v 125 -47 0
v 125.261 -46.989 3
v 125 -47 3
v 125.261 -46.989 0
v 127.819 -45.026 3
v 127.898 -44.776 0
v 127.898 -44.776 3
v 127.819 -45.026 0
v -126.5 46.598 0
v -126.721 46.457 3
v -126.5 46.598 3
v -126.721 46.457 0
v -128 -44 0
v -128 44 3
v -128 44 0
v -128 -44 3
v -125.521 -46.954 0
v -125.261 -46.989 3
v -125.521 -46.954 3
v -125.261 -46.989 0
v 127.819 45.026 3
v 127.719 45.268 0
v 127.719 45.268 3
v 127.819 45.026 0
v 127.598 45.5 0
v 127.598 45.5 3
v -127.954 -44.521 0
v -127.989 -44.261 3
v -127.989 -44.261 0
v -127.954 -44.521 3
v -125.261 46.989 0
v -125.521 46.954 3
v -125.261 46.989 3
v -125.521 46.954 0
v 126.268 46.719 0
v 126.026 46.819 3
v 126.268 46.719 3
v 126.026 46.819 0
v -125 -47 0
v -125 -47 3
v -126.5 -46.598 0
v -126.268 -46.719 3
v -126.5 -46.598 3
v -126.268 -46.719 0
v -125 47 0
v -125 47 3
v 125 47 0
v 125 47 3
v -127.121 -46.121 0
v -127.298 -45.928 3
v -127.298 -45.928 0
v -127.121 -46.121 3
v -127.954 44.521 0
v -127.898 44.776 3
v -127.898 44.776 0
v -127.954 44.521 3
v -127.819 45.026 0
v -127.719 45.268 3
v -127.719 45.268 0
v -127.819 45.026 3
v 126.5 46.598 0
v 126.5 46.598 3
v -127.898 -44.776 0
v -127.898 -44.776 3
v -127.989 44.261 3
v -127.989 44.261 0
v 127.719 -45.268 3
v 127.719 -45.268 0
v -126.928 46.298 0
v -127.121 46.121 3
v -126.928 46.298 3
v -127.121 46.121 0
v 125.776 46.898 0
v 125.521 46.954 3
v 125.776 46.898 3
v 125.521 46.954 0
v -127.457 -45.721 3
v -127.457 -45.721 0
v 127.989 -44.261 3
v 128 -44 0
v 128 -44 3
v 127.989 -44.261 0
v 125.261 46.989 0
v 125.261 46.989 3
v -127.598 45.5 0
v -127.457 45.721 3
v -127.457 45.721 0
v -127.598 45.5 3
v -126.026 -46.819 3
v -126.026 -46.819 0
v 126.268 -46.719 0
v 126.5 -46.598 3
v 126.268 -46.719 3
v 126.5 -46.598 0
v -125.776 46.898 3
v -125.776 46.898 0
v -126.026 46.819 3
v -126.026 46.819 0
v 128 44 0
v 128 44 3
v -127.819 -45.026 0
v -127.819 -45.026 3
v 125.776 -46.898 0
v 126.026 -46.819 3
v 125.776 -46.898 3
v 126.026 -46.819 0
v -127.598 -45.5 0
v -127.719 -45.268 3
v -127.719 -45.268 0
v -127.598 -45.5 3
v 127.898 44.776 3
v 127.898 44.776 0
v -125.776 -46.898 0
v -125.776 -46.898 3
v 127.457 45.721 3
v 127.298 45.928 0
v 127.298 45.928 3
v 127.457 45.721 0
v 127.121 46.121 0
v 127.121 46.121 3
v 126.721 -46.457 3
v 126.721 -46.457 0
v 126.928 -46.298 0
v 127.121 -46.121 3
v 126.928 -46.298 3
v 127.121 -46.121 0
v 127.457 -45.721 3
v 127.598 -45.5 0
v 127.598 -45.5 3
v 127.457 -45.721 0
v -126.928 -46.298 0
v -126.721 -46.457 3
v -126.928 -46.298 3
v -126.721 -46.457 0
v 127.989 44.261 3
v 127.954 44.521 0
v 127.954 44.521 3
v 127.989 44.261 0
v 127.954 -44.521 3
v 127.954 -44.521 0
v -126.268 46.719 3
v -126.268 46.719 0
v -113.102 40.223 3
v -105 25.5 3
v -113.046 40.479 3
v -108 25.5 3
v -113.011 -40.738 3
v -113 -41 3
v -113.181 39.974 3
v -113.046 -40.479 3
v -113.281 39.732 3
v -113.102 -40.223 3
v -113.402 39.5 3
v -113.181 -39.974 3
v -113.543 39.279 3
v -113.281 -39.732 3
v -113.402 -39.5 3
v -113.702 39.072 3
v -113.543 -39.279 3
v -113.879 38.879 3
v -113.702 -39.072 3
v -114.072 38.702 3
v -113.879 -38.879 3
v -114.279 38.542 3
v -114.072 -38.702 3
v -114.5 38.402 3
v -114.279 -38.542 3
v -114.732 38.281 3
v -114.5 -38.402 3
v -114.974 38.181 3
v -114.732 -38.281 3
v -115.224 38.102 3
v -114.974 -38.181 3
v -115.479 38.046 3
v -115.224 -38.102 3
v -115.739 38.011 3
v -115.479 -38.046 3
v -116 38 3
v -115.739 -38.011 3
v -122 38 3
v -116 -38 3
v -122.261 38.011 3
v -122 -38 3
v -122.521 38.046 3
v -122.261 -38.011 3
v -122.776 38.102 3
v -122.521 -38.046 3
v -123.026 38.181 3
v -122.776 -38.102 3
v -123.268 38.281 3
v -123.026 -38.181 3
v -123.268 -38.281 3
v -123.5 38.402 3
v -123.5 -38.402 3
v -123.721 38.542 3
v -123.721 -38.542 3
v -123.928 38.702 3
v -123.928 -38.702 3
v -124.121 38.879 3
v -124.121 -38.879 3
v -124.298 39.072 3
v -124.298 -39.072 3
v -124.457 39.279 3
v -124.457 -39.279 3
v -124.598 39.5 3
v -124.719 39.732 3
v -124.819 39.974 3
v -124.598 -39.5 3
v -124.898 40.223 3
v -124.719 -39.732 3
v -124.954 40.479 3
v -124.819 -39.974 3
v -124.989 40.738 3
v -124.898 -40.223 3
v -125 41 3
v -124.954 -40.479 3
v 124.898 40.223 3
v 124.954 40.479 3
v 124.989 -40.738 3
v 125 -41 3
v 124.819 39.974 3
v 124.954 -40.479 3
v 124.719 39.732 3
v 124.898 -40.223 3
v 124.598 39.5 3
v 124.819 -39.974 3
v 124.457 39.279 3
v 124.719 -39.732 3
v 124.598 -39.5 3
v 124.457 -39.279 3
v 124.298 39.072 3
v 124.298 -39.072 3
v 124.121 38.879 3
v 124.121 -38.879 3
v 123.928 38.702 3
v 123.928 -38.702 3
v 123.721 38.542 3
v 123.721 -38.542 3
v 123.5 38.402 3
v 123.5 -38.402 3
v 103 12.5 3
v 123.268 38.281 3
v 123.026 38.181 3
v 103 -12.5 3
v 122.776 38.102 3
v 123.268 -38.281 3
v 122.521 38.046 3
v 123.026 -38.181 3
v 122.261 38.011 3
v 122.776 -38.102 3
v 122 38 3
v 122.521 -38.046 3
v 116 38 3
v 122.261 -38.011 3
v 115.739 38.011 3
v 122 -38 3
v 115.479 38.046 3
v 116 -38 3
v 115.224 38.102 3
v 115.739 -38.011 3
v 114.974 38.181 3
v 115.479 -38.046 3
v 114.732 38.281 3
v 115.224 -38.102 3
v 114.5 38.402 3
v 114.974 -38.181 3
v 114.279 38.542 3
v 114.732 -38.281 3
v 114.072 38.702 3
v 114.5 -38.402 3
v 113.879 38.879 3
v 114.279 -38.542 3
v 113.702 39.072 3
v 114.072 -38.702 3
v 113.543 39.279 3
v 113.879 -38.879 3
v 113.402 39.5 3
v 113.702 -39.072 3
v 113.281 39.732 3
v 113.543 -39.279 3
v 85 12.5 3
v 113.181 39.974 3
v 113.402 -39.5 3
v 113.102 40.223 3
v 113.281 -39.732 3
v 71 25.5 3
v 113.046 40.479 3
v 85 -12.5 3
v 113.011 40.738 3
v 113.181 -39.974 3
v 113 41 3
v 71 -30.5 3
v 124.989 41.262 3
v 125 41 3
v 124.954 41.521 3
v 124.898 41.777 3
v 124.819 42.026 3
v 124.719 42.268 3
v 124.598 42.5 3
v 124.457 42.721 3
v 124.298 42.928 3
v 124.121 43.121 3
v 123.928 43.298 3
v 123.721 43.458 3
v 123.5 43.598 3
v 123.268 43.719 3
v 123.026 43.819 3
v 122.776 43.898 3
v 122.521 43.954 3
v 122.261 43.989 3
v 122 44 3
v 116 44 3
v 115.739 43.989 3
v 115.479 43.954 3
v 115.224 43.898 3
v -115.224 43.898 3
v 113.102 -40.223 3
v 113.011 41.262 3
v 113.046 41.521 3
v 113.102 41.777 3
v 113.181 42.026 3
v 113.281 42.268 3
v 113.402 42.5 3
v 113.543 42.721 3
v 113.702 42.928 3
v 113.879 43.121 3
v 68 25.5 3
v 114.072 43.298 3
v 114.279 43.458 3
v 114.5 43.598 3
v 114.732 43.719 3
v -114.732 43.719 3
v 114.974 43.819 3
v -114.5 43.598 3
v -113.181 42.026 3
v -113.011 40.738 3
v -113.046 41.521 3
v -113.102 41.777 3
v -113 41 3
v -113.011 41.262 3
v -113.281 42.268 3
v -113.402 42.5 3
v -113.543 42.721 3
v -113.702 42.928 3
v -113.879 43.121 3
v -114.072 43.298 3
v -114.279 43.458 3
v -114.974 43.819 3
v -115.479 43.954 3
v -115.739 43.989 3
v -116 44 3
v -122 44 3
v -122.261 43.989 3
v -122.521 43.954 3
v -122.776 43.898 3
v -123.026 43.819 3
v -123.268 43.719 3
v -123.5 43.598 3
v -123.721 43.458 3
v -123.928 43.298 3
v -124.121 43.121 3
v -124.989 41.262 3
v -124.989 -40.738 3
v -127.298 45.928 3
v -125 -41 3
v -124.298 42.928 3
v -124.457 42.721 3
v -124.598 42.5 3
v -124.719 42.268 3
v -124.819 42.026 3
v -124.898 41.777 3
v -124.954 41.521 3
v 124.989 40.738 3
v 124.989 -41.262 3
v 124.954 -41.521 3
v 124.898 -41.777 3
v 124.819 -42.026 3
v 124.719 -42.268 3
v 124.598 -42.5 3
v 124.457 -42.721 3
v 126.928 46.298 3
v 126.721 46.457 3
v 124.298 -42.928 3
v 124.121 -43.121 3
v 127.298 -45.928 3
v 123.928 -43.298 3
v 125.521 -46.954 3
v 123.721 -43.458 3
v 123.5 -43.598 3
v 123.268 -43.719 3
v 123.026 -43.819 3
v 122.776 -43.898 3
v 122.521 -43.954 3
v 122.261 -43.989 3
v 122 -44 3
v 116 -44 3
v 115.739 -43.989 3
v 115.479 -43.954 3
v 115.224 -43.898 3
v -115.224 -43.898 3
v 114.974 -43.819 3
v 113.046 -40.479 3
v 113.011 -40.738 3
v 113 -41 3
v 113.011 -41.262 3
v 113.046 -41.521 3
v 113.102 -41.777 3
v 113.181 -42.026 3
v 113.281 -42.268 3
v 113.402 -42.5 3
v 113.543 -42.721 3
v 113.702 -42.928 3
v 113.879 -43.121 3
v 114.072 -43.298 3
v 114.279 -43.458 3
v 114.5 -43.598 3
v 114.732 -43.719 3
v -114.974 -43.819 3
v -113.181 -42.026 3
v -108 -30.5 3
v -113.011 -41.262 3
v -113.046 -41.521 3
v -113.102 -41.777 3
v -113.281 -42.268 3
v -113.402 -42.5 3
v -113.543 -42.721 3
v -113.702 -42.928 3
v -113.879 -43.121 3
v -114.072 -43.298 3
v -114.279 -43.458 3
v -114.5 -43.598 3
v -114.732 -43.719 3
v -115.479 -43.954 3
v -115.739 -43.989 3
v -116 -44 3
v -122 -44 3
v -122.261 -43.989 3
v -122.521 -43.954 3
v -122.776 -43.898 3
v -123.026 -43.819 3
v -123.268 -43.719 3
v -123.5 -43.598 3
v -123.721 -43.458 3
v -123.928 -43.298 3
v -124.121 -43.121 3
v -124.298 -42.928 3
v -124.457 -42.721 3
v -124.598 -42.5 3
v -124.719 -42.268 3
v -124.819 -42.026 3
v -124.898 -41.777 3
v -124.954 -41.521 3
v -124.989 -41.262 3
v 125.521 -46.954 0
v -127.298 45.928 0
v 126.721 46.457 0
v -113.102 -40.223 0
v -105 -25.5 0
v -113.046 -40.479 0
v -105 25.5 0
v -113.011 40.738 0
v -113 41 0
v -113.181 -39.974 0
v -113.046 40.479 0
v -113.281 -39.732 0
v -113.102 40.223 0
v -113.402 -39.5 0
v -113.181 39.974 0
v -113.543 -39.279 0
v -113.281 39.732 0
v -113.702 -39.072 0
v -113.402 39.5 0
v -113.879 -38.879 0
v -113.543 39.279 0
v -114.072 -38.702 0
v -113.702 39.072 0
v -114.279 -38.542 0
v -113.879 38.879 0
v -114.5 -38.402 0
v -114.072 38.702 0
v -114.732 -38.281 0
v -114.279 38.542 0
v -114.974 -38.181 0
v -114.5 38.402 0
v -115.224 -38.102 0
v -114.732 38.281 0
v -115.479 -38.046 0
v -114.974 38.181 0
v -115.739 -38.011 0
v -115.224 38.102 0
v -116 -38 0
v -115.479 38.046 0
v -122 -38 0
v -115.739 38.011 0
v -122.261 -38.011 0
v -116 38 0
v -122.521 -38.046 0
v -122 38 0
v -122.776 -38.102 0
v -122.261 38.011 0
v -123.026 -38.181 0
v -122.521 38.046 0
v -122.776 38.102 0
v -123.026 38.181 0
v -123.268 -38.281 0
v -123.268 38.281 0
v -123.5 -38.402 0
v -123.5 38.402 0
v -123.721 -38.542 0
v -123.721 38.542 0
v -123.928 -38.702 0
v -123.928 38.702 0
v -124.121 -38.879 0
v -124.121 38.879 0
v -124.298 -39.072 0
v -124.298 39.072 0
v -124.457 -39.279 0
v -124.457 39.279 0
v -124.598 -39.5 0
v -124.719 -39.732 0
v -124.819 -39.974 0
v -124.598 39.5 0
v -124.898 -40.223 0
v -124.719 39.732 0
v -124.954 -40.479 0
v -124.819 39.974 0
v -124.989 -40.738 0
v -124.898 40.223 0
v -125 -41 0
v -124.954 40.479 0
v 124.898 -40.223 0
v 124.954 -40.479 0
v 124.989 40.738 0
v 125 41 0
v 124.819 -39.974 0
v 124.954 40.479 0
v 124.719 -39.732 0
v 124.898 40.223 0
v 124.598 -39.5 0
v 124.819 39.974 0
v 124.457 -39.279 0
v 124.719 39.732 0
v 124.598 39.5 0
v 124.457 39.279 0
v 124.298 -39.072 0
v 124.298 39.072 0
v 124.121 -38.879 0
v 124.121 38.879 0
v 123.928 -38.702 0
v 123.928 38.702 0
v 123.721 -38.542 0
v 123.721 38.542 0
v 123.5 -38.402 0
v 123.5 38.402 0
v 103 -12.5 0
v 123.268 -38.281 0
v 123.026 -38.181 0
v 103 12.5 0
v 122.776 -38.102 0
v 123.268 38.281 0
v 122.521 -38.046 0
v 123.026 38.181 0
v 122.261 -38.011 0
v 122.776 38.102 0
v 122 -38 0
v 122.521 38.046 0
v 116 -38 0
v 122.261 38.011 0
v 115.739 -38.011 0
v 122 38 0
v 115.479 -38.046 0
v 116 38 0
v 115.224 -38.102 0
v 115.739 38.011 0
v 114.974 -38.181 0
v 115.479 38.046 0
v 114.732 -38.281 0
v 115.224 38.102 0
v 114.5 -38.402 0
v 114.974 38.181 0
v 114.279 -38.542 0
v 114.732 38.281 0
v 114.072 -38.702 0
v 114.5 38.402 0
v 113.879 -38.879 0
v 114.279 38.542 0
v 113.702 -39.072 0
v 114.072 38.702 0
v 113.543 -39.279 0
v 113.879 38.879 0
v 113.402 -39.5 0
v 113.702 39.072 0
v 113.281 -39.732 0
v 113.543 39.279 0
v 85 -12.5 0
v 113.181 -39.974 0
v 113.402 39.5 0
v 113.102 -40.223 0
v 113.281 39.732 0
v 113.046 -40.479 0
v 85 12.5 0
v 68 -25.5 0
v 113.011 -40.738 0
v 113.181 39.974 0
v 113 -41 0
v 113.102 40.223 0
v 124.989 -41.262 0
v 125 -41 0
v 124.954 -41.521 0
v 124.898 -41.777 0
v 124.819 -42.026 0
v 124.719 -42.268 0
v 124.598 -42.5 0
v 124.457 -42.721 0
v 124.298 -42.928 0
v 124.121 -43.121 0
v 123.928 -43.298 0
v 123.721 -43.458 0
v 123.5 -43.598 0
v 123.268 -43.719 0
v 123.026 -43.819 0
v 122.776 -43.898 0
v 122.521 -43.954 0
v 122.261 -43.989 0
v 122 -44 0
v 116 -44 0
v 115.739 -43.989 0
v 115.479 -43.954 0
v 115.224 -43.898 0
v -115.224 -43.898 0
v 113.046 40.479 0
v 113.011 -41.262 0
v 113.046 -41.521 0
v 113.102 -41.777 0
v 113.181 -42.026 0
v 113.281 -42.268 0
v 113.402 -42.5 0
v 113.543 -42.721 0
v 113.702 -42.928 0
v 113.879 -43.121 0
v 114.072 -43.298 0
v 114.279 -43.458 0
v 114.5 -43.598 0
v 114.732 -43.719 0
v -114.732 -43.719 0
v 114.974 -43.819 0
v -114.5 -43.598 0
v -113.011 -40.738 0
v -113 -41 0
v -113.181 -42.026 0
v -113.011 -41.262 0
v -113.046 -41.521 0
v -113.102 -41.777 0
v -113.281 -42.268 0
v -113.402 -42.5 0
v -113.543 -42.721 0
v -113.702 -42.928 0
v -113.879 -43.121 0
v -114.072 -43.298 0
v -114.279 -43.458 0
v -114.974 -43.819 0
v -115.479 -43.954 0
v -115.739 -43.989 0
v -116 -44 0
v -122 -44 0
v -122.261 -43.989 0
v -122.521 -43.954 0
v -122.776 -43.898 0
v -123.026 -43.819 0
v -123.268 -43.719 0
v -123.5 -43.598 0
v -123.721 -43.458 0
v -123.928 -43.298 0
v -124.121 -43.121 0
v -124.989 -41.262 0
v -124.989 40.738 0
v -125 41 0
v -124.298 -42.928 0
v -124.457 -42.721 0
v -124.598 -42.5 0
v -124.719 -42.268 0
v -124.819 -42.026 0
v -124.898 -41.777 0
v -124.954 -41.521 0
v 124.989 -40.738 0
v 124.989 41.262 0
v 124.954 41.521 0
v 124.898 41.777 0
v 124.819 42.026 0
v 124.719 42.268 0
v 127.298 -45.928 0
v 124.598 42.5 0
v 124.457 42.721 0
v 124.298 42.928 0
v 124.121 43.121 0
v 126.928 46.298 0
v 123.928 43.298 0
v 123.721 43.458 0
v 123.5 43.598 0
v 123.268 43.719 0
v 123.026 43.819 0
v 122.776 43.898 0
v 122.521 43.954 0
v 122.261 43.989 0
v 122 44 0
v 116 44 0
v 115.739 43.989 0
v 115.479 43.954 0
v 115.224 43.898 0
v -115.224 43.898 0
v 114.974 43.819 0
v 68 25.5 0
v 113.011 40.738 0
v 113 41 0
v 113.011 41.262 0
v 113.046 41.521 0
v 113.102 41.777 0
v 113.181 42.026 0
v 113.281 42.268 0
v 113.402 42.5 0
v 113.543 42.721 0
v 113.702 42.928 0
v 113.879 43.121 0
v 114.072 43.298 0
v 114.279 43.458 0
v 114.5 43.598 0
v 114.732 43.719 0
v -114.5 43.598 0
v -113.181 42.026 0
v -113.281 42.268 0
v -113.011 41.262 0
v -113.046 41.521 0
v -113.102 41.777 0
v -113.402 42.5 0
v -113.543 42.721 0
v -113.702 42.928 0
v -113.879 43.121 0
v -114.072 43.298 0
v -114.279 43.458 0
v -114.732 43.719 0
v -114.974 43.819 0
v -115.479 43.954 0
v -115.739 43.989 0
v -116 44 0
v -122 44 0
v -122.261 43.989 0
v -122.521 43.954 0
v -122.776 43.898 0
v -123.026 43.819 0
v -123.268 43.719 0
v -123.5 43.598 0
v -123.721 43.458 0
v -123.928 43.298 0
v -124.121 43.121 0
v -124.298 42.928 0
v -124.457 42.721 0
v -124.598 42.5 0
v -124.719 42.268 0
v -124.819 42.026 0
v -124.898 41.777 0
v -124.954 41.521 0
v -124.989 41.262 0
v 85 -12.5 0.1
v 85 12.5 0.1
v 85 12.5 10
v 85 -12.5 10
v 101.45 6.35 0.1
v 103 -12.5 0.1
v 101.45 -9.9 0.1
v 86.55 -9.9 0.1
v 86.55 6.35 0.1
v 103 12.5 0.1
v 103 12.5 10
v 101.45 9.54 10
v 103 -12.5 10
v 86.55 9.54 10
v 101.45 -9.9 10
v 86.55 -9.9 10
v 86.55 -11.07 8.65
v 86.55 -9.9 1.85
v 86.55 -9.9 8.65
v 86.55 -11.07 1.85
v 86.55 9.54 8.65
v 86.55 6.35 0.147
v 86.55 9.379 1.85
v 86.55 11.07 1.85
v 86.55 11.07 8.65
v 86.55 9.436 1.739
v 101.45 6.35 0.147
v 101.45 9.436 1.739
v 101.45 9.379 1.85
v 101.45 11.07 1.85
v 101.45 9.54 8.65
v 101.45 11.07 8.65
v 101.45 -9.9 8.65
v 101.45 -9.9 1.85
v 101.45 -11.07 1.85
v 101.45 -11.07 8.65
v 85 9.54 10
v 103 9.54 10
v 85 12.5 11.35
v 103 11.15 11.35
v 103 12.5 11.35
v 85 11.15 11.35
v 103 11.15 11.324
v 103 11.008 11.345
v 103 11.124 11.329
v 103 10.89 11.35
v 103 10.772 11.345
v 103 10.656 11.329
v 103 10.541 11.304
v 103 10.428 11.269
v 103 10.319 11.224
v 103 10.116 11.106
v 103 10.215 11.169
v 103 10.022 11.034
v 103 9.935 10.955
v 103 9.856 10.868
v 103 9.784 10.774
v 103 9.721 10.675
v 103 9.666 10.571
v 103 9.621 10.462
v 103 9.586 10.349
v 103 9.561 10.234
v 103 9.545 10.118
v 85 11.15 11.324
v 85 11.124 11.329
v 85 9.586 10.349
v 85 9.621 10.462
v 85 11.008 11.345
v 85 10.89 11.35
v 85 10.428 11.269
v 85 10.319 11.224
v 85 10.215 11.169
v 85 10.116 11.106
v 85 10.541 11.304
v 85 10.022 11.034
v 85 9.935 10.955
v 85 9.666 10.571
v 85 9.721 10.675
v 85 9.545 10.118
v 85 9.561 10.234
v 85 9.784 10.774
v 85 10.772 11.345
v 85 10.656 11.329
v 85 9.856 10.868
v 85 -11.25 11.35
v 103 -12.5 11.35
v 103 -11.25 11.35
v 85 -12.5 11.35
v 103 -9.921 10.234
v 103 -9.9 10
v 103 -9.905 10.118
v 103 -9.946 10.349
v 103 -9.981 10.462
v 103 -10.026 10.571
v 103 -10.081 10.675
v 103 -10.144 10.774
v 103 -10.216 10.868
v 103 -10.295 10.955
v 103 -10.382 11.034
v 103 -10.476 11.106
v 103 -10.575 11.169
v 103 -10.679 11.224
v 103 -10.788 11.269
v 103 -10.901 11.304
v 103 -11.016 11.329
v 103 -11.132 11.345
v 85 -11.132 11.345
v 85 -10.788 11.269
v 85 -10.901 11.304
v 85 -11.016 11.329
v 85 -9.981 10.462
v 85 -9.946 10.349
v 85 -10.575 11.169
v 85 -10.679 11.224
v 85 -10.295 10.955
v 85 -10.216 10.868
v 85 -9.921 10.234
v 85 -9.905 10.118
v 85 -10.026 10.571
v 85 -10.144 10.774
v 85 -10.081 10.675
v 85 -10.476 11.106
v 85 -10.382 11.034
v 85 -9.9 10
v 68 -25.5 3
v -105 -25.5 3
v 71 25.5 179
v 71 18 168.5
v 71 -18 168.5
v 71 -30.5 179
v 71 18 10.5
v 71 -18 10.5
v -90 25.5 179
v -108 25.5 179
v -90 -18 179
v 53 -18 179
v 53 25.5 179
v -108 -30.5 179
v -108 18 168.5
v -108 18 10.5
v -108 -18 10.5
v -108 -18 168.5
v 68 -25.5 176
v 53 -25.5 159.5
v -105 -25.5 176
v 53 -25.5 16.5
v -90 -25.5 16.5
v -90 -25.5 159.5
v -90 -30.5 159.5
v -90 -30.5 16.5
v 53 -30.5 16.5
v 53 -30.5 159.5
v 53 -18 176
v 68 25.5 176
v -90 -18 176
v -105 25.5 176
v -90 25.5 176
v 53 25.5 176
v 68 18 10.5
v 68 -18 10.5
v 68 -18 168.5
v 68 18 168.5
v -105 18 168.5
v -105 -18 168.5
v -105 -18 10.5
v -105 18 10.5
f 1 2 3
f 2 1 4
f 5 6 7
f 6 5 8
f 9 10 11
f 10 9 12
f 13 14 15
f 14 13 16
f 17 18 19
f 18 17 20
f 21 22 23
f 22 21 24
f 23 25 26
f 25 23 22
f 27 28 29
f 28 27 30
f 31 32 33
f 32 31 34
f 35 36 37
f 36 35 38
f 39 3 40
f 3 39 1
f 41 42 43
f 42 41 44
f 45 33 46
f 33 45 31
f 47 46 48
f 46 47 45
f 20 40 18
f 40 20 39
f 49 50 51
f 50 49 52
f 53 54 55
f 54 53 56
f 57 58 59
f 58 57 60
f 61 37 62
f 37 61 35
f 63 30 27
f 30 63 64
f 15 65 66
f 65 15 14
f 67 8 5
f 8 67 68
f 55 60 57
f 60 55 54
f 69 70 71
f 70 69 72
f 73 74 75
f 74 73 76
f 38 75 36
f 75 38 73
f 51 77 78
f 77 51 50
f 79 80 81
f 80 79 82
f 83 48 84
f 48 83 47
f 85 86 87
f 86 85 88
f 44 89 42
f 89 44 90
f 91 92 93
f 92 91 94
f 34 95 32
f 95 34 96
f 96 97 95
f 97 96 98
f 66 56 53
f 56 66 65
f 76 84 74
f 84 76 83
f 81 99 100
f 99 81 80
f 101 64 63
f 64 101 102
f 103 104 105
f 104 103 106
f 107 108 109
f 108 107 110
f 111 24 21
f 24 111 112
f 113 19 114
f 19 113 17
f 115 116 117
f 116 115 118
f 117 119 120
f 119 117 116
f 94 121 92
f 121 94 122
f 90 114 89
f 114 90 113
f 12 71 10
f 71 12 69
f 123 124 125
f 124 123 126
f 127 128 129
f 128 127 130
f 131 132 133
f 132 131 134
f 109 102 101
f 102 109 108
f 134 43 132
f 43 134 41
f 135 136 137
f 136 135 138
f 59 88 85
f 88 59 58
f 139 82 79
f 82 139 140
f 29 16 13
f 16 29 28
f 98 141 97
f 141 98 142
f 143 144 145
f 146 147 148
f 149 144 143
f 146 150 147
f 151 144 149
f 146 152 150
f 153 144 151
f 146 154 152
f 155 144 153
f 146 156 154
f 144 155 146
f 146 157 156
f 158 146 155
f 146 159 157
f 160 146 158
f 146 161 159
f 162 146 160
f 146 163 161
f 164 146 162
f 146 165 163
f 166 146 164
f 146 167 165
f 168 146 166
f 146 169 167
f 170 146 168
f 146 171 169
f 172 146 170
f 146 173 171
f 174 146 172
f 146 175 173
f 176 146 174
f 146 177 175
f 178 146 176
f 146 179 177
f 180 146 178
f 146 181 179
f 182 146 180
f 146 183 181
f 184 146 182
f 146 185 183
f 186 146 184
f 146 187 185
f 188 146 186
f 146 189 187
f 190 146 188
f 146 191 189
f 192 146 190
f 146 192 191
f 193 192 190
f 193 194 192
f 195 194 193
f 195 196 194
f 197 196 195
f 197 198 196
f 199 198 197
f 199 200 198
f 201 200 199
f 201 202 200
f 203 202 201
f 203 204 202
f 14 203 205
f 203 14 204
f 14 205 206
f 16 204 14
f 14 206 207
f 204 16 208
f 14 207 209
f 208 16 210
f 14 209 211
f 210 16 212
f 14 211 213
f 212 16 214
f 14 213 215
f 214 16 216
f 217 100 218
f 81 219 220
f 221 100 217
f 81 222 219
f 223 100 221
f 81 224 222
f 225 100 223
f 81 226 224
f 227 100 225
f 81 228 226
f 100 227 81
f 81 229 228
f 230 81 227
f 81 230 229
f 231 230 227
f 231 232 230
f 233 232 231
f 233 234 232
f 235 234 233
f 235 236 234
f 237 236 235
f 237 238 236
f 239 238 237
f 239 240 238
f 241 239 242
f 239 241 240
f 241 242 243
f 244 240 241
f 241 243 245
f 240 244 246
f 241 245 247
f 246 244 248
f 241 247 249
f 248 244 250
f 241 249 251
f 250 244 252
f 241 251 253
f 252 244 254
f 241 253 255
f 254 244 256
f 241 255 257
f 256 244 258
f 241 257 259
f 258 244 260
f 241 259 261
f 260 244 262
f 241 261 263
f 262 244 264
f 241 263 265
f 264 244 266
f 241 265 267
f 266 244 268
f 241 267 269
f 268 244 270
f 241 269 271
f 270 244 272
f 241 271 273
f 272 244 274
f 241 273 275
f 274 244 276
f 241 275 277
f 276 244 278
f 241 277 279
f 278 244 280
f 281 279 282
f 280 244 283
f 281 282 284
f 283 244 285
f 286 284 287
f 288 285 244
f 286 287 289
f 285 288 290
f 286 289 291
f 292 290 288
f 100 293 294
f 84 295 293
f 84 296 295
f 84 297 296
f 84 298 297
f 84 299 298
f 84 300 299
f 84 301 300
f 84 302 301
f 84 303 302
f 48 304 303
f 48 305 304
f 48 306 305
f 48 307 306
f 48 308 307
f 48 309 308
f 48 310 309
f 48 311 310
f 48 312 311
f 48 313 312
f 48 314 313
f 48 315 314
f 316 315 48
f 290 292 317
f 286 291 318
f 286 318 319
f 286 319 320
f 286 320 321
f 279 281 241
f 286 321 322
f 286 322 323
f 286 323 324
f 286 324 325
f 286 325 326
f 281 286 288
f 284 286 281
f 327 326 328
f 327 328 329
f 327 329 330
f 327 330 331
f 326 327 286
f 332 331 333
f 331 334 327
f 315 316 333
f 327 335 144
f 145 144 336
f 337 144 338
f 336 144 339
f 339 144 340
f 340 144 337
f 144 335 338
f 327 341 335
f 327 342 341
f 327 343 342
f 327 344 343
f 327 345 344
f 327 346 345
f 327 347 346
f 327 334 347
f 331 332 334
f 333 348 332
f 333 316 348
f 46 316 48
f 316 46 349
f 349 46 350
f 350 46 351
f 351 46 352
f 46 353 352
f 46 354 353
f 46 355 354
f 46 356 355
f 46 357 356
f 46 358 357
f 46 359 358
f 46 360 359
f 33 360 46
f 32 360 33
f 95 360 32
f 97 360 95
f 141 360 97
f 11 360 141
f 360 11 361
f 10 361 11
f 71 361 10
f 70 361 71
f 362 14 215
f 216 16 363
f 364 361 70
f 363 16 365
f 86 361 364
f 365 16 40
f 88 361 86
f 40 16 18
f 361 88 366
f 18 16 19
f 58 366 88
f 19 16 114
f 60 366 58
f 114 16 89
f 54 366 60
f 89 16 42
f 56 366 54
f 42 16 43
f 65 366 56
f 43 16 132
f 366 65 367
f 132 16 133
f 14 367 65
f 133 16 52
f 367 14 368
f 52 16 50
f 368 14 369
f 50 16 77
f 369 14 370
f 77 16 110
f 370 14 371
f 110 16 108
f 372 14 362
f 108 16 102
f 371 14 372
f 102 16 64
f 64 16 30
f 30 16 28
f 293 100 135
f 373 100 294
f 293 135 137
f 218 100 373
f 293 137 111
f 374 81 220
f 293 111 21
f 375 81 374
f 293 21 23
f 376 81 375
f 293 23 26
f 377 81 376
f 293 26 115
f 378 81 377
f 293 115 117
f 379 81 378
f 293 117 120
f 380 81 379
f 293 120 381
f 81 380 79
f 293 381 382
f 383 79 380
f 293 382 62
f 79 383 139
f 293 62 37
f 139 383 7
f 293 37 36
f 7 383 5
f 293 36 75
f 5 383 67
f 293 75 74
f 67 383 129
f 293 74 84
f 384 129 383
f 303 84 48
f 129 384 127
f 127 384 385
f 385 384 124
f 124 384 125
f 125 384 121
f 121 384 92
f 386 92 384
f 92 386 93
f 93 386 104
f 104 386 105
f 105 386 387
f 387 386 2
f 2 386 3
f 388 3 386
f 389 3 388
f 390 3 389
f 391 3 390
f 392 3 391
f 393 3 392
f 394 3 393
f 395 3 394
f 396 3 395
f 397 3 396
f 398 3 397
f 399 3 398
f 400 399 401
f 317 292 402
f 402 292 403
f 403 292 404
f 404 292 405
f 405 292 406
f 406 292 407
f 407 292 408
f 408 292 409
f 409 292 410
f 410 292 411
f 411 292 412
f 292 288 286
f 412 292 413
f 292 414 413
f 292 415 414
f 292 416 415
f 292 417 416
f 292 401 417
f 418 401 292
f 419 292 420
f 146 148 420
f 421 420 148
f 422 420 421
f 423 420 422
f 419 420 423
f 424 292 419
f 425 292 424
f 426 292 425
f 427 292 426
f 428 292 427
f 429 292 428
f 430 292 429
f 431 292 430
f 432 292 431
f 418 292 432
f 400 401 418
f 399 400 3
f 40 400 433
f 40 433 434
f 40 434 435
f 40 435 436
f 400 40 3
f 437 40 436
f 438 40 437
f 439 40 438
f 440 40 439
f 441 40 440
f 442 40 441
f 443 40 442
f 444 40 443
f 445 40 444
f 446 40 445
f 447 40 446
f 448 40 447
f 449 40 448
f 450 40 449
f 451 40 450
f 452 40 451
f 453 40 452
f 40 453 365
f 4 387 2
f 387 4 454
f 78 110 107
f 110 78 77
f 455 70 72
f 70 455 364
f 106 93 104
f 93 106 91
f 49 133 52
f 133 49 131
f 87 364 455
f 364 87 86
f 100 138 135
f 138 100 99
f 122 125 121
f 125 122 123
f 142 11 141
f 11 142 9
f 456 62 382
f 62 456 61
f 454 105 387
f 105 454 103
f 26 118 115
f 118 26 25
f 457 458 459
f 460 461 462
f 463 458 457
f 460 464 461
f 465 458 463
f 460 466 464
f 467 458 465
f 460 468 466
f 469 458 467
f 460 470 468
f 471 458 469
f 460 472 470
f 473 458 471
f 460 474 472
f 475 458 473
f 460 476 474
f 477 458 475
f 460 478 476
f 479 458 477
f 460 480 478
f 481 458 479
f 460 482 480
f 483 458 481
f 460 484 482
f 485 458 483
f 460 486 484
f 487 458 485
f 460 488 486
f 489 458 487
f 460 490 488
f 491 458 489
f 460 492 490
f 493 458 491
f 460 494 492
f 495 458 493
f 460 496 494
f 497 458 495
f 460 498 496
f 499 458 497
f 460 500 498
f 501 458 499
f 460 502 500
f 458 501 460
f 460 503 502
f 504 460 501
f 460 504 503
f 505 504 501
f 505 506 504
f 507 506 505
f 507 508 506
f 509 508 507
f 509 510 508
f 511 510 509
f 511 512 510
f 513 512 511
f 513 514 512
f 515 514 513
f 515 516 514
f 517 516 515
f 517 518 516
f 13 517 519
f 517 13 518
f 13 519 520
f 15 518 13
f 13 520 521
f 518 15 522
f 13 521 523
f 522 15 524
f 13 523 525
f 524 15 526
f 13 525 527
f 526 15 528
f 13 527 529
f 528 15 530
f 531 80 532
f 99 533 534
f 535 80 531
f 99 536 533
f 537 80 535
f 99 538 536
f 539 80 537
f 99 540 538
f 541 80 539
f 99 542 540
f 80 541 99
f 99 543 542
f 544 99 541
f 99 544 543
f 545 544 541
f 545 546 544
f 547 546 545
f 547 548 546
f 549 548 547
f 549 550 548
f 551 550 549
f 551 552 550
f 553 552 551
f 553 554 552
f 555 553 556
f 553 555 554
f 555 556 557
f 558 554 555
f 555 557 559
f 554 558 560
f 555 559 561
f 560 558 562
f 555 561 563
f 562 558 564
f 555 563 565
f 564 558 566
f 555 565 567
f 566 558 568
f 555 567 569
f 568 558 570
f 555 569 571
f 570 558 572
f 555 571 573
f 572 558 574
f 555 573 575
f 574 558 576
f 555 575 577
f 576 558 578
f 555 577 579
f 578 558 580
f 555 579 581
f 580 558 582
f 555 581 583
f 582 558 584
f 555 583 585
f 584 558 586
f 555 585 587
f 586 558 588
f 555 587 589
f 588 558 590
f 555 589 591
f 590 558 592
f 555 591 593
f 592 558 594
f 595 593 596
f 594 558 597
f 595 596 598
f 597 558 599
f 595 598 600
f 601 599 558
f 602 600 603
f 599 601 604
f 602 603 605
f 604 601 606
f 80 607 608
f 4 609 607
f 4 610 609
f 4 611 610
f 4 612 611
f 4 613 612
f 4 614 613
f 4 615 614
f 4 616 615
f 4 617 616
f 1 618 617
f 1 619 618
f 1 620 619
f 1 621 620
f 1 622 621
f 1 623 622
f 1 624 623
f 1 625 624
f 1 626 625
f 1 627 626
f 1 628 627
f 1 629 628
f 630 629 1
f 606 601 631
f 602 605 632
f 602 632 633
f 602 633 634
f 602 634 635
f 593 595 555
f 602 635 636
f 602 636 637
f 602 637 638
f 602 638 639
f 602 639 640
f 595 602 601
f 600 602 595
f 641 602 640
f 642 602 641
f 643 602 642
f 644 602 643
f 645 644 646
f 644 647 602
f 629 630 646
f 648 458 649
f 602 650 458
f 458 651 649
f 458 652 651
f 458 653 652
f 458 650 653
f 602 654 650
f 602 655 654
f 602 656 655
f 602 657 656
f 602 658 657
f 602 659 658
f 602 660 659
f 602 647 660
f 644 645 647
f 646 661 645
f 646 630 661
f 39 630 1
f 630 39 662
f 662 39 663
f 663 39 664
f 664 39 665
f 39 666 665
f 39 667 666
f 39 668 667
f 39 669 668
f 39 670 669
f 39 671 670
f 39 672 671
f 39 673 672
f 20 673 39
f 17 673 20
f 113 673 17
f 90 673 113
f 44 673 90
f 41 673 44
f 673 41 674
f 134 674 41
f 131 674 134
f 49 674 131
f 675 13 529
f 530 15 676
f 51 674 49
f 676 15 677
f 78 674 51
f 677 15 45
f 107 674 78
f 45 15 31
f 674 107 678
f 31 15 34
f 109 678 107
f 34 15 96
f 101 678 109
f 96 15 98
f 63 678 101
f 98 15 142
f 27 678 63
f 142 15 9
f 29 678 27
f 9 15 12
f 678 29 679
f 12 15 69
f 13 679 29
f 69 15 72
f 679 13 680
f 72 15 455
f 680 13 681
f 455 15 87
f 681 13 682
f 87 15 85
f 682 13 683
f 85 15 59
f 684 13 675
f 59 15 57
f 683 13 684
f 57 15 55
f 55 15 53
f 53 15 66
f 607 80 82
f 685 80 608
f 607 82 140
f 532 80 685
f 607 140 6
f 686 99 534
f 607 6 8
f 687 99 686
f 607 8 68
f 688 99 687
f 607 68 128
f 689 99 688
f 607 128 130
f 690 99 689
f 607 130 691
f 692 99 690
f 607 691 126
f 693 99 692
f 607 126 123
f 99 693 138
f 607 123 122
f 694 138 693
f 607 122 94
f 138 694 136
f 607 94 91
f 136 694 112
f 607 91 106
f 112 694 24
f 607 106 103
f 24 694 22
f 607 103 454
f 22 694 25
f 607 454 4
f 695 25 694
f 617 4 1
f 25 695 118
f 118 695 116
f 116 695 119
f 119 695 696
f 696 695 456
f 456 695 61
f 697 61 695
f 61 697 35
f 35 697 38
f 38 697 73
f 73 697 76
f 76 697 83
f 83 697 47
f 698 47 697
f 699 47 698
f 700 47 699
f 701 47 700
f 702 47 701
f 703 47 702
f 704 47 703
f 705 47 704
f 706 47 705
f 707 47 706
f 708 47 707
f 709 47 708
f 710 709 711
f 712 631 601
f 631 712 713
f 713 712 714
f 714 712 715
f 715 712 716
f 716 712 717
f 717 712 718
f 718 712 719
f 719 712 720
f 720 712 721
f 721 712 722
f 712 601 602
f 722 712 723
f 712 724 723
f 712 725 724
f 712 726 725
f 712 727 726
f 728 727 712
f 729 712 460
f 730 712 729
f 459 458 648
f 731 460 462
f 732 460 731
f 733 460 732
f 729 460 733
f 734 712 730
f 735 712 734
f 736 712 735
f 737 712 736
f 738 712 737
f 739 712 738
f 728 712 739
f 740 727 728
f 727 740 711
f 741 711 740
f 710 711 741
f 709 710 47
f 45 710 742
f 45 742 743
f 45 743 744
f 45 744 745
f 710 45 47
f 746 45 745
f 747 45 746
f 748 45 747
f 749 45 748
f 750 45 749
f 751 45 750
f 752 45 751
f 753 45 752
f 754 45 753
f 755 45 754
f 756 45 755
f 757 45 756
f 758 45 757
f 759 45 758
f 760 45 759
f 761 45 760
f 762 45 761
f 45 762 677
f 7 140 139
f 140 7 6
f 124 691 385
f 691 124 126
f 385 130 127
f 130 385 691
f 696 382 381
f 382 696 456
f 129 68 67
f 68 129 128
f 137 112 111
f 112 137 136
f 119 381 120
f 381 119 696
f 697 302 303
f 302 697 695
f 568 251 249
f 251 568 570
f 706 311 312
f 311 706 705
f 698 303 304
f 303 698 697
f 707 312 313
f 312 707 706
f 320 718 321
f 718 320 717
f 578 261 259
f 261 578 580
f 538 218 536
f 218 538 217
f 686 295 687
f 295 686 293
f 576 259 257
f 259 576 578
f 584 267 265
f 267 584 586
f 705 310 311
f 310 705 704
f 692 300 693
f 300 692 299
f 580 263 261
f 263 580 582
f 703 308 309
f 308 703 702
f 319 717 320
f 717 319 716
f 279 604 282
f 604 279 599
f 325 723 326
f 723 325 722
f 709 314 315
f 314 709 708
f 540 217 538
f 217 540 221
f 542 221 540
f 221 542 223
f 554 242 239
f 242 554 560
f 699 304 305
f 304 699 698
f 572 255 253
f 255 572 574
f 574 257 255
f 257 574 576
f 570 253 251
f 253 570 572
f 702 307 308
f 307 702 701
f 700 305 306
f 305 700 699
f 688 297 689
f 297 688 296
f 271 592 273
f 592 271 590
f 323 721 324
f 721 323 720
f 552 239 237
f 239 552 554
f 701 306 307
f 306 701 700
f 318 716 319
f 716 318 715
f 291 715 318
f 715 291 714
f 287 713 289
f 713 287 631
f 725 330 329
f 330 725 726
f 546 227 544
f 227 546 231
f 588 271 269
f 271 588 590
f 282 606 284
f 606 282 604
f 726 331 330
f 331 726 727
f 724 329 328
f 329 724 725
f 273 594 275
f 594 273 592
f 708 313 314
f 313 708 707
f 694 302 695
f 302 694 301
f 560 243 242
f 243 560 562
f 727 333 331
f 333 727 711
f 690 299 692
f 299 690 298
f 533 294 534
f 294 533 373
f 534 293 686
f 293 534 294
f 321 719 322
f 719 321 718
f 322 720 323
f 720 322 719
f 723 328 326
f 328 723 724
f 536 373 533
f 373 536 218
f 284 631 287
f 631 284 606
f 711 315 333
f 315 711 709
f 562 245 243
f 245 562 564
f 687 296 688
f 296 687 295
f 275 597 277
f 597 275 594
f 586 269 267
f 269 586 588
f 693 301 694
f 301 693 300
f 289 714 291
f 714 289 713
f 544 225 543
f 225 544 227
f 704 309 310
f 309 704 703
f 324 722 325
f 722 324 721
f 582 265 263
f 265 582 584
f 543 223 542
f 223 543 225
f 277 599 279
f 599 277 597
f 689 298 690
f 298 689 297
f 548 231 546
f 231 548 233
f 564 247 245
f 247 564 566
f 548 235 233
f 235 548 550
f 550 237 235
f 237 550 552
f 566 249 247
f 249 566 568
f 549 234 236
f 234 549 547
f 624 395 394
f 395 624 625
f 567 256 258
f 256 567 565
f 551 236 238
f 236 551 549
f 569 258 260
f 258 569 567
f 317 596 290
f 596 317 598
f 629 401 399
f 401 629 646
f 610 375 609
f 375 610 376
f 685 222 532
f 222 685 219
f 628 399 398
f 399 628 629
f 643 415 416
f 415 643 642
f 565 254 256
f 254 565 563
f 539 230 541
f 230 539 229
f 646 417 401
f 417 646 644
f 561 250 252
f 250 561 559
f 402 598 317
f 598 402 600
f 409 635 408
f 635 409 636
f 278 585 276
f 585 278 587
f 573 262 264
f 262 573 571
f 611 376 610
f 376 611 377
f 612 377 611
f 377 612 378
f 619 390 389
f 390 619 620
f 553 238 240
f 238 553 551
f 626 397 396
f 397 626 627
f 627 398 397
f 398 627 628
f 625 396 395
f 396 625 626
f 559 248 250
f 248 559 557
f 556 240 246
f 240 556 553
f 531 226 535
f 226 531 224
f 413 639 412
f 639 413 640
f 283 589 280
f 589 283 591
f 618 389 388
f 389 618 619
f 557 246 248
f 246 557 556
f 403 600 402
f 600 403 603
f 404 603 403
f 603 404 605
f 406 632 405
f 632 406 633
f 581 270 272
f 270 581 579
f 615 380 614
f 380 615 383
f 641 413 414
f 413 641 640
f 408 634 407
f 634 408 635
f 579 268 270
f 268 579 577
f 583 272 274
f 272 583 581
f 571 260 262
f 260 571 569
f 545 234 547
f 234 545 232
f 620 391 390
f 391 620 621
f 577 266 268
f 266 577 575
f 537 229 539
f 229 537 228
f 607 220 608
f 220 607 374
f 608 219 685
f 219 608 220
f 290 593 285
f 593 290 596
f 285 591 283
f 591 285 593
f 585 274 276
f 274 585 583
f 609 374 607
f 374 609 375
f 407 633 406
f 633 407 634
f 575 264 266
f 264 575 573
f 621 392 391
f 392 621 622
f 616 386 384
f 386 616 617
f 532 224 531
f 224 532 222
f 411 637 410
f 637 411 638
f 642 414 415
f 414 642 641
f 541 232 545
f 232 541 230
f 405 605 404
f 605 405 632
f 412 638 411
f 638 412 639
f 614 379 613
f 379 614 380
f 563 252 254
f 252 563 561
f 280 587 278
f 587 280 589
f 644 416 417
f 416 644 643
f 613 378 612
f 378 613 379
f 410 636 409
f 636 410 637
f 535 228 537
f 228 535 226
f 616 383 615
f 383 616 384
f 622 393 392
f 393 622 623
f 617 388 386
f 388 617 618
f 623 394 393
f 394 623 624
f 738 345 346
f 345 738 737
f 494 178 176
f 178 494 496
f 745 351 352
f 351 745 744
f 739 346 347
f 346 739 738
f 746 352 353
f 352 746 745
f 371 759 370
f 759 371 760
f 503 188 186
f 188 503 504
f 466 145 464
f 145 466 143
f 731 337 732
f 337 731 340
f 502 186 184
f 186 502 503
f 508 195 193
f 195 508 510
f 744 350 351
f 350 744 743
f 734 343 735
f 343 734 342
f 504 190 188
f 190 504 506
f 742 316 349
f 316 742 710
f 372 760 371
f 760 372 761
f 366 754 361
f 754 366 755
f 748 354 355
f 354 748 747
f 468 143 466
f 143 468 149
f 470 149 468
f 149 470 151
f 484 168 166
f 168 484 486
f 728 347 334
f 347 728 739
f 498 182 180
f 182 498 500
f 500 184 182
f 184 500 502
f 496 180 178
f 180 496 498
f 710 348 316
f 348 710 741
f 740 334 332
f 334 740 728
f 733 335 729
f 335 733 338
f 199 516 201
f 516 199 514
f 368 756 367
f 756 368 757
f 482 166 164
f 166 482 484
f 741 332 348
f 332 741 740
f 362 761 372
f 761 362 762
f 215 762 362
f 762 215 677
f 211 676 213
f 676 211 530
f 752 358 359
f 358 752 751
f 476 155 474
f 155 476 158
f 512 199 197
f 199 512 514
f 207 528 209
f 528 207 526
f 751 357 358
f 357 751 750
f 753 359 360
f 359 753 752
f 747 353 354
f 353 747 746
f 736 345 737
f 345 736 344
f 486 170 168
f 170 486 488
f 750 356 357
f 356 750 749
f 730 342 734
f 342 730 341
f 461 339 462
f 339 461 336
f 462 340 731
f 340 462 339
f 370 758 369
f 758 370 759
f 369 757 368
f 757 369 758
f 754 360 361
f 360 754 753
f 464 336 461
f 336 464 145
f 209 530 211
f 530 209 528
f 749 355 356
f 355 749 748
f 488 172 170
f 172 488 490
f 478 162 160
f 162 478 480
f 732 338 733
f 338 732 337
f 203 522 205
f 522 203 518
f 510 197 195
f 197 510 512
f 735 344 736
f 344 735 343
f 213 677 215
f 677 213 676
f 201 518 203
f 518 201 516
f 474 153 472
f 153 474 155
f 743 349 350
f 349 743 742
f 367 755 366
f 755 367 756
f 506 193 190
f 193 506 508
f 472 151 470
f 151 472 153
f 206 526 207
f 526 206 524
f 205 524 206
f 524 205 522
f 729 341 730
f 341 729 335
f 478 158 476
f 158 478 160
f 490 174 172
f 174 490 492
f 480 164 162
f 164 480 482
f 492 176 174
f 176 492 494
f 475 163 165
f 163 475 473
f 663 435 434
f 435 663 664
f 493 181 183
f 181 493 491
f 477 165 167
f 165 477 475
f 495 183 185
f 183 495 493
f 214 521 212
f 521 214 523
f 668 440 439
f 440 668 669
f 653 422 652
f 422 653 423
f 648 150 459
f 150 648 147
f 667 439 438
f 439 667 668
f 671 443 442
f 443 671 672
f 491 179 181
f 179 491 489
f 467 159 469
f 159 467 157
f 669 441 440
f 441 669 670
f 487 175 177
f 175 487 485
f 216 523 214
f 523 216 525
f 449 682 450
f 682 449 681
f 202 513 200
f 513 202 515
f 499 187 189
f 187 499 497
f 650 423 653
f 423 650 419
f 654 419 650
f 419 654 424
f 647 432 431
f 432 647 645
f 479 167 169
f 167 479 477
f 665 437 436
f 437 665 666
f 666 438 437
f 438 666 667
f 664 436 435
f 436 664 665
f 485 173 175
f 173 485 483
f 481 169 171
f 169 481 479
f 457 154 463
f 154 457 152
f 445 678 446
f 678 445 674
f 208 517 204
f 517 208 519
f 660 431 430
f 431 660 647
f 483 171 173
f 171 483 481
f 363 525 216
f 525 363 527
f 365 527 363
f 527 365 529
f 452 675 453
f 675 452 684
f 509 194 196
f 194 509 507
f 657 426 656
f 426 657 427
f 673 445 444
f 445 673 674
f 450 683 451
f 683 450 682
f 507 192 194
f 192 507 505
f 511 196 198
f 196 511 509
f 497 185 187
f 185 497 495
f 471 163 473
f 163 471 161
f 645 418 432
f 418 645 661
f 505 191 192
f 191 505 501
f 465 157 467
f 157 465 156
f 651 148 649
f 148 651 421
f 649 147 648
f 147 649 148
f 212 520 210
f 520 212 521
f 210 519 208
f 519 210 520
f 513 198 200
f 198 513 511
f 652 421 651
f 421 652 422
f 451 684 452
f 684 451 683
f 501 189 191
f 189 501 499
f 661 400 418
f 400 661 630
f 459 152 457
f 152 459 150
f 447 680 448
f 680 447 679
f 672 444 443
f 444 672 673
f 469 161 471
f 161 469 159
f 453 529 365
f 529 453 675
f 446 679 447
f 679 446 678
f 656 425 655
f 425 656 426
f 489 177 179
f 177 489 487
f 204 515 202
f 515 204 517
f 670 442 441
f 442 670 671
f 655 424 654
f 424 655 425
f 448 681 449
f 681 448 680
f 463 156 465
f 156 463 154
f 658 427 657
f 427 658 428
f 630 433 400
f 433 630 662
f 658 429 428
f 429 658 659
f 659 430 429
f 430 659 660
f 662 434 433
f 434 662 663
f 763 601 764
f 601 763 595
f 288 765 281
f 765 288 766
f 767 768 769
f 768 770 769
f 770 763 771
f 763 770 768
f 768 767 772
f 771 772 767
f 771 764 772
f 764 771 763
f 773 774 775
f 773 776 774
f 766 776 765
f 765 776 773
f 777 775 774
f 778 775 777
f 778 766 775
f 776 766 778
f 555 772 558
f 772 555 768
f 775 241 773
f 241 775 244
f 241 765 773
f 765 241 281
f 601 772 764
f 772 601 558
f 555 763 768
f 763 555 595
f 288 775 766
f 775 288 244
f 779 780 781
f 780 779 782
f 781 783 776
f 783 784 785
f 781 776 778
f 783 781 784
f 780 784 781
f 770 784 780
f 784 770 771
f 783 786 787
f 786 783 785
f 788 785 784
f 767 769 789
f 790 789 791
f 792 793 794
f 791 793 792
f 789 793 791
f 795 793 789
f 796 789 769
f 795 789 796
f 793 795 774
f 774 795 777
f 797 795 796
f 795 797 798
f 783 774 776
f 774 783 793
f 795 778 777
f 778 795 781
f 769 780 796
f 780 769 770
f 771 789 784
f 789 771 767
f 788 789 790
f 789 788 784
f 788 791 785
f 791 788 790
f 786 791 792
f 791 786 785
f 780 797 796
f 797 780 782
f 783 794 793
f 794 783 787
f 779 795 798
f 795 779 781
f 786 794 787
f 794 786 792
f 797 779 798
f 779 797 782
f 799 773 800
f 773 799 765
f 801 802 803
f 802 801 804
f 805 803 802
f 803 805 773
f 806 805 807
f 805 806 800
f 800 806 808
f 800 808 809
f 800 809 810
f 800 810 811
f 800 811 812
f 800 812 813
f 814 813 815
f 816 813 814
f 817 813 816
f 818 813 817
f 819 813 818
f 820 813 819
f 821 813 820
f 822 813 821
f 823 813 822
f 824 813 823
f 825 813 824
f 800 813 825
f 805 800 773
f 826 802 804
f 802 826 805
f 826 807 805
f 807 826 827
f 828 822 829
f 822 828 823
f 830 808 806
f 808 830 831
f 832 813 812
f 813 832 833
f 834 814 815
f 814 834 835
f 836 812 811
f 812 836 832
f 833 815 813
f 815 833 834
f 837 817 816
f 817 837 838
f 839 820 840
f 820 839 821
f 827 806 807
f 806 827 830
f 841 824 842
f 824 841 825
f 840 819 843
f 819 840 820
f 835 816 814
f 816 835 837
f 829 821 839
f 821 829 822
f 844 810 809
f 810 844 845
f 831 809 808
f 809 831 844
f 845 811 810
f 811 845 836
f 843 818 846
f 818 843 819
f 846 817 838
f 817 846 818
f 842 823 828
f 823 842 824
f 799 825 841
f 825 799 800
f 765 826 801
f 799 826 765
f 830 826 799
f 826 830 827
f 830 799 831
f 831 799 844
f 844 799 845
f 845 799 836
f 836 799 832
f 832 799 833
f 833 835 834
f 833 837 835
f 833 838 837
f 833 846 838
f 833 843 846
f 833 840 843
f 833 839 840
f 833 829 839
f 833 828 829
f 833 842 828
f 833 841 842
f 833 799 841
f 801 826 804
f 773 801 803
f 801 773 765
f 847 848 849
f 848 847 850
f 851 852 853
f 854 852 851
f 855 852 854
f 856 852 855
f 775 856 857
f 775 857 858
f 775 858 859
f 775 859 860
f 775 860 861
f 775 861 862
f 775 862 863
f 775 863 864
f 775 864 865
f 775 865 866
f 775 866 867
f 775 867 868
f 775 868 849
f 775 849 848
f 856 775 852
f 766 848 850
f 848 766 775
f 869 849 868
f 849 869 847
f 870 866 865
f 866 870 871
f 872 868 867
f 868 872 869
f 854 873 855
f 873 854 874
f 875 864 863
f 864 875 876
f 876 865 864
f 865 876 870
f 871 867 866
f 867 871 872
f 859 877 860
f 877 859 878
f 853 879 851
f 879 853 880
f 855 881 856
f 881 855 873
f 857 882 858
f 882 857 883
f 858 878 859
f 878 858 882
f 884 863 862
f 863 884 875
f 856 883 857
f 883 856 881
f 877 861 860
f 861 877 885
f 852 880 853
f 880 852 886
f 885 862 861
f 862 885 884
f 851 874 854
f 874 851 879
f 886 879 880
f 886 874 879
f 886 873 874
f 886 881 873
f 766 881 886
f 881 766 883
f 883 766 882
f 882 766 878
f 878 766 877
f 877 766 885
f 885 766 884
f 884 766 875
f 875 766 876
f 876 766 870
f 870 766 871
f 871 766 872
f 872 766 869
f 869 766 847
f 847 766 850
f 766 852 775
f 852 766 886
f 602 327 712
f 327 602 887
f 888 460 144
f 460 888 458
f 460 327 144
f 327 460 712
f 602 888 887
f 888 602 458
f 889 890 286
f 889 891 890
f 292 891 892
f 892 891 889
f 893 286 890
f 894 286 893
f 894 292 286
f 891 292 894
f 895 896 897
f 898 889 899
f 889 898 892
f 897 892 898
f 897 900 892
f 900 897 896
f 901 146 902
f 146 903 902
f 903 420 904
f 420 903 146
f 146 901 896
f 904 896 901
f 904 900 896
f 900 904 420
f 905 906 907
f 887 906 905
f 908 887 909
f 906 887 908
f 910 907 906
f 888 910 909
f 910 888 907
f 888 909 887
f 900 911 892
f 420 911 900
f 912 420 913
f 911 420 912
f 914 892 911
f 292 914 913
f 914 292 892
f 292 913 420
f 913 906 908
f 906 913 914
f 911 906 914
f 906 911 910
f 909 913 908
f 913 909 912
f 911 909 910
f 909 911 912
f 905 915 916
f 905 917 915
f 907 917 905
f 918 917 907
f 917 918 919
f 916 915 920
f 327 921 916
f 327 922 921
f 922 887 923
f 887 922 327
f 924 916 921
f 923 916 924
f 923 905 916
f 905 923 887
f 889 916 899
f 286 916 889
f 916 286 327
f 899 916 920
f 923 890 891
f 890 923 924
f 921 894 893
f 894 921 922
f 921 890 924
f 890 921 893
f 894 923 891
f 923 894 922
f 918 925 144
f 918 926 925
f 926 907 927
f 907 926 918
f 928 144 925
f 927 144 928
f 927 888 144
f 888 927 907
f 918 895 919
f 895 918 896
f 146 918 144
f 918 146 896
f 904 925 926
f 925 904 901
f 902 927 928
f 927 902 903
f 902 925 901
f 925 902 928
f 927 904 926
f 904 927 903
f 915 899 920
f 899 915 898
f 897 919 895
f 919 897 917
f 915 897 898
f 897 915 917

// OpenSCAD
// file: ../components/rj45keystone.scad
$fa = 5;
$fs = 0.01;

/*
 * The RJ45 keystone receiver
 */
module rj45Receiver() {
	difference() {
		cube([18, 25, 9.9]);
		translate([1.55, 2.6, 0]) {
			cube([14.9, 19.44, 7.9]);
		}
		translate([1.55, 2.6, 7.9]) {
			cube([14.9, 16.25, 2]);
		}
		translate([1.55, 17.45, 7.2]) {
			rotate(v=[1, 0, 0], a=-27.3) {
				cube([14.9, 3.5, 3]);
			}
		}
		translate([1.55, 1.43, 1.35]) {
			cube([14.9, 22.14, 6.8]);
		}
	}
	translate([0, 22.04, -1.35]) {
		intersection() {
			cube([18, 2.96, 1.35]);
			union() {
				translate([0, 1.61, 0]) {
					cube([20.42, 1.61, 1.35]);
				}
				translate([0, 1.35, 1.35]) {
					rotate(v=[0, 1, 0], a=90) {
						cylinder(h=20.42, r=1.35);
					}
				}
			}
		}
	}

	translate([0, 0, -1.35]) {
		intersection() {
			cube([18, 2.6, 1.35]);
			union() {
				cube([20.42, 1.25, 1.35]);
				translate([0, 1.25, 1.35]) {
					rotate(v=[0, 1, 0], a=90) {
						cylinder(h=20.42, r=1.35);
					}
				}
			}
		}
	}
}

/*
 * So a hole can be cut for the keystone socket
 */
module rj45VolumeBlock() {
	cube([18, 25, 9.9]);
}

rj45Receiver();
// file: blank-2u.scad
$fa = 5;
$fs = 0.01;

module blank2u() {

    PLATE_W = 250;
    PLATE_H = 88;
    PLATE_D = 3;
    CORNER_RADIUS = 3;

    CUTOUT_R = 3;
    CUTOUT_L = 2;
    CUTOUT_E = 3;

    CORNERS = [[1, 1], [1, -1], [-1, 1], [-1, -1]];

    difference()
    {
        // the plate
        linear_extrude( PLATE_D )
            offset(r=CORNER_RADIUS) 
                square( [PLATE_W, PLATE_H], center=true );

        // cutouts for screws
        for (corner = CORNERS) {
            #translate([corner[0] * (PLATE_W /2 - CUTOUT_L * 1.5 - CUTOUT_E), corner[1] * (PLATE_H / 2 - CUTOUT_E), 0])
                translate([0,0, - PLATE_D * 2])
                    linear_extrude( PLATE_D * 4 )
                        offset(r = CUTOUT_R) 
                            square( [CUTOUT_R * CUTOUT_L, 0.0001], center=true );
        }
    }
}

blank2u();
// main file
use <blank-2u.scad>;
use <../components/rj45keystone.scad>

module hitronCoda2u() {

    PLATE_W = 250;
    PLATE_H = 88;
    PLATE_D = 3;

    MODEM_W = 173;
    MODEM_H = 51;
    MODEM_D = 173;

    SHELVE_T = 3;
    SHELVE_O = 15;

    // cut out things from 2u plate
    difference() {
        // start with a blank 2u plate
        blank2u();

        // remove block for rj45 connector
        translate([ -9, -12.5, 0]) // center first
            translate([119 - 25, 0, 0]) // move to 25mm from the last border
                rj45VolumeBlock();  // rj45 block

        // remove block for the modem itself
        translate([- (PLATE_W - MODEM_W) / 2 + 20, 0 ])
            cube([MODEM_W, MODEM_H, 10], center = true);
    }

    // add rj45 keystone
        rotate([0,180,0])  // rotate
            translate([ -9, -12.5, 0]) // center
                translate([- 119 + 25, 0, -10]) // move to 25mm from the last border, and flush with the top face
                    rj45Receiver();

    // add shelve for the modem to sit on
    translate([-18.5, -28, 91])
        difference() {
            cube([ MODEM_W + SHELVE_T * 2, 5, MODEM_D + SHELVE_T], center = true);
            translate([0, 0, - SHELVE_T])
                cube([ MODEM_W - SHELVE_O * 2, 15, MODEM_D - SHELVE_O * 2], center = true);
        }

    // add sides to the shelve, with cutouts
    translate([69.5, 0, MODEM_D / 2 + SHELVE_T])
        difference() {
            cube([SHELVE_T, MODEM_H, MODEM_D], center = true);
            cube([SHELVE_T * 2, MODEM_H - SHELVE_O, MODEM_D - SHELVE_O], center = true);
        }
    translate([-106.5, 0, MODEM_D / 2 + SHELVE_T])
        difference() {
            cube([SHELVE_T, MODEM_H, MODEM_D], center = true);
            cube([SHELVE_T * 2, MODEM_H - SHELVE_O, MODEM_D - SHELVE_O], center = true);
        }

    // add back to the shelve, bottom lip only to let the cables go through
    translate([-18.5, 0, MODEM_D + SHELVE_T * 1.5])
        difference() {
            cube([MODEM_W + SHELVE_T * 2, MODEM_H, SHELVE_T], center = true);
            translate([0, SHELVE_O / 2, 0])
                cube([MODEM_W - SHELVE_O * 2, MODEM_H, SHELVE_T * 2], center = true);
        }
}

hitronCoda2u();
